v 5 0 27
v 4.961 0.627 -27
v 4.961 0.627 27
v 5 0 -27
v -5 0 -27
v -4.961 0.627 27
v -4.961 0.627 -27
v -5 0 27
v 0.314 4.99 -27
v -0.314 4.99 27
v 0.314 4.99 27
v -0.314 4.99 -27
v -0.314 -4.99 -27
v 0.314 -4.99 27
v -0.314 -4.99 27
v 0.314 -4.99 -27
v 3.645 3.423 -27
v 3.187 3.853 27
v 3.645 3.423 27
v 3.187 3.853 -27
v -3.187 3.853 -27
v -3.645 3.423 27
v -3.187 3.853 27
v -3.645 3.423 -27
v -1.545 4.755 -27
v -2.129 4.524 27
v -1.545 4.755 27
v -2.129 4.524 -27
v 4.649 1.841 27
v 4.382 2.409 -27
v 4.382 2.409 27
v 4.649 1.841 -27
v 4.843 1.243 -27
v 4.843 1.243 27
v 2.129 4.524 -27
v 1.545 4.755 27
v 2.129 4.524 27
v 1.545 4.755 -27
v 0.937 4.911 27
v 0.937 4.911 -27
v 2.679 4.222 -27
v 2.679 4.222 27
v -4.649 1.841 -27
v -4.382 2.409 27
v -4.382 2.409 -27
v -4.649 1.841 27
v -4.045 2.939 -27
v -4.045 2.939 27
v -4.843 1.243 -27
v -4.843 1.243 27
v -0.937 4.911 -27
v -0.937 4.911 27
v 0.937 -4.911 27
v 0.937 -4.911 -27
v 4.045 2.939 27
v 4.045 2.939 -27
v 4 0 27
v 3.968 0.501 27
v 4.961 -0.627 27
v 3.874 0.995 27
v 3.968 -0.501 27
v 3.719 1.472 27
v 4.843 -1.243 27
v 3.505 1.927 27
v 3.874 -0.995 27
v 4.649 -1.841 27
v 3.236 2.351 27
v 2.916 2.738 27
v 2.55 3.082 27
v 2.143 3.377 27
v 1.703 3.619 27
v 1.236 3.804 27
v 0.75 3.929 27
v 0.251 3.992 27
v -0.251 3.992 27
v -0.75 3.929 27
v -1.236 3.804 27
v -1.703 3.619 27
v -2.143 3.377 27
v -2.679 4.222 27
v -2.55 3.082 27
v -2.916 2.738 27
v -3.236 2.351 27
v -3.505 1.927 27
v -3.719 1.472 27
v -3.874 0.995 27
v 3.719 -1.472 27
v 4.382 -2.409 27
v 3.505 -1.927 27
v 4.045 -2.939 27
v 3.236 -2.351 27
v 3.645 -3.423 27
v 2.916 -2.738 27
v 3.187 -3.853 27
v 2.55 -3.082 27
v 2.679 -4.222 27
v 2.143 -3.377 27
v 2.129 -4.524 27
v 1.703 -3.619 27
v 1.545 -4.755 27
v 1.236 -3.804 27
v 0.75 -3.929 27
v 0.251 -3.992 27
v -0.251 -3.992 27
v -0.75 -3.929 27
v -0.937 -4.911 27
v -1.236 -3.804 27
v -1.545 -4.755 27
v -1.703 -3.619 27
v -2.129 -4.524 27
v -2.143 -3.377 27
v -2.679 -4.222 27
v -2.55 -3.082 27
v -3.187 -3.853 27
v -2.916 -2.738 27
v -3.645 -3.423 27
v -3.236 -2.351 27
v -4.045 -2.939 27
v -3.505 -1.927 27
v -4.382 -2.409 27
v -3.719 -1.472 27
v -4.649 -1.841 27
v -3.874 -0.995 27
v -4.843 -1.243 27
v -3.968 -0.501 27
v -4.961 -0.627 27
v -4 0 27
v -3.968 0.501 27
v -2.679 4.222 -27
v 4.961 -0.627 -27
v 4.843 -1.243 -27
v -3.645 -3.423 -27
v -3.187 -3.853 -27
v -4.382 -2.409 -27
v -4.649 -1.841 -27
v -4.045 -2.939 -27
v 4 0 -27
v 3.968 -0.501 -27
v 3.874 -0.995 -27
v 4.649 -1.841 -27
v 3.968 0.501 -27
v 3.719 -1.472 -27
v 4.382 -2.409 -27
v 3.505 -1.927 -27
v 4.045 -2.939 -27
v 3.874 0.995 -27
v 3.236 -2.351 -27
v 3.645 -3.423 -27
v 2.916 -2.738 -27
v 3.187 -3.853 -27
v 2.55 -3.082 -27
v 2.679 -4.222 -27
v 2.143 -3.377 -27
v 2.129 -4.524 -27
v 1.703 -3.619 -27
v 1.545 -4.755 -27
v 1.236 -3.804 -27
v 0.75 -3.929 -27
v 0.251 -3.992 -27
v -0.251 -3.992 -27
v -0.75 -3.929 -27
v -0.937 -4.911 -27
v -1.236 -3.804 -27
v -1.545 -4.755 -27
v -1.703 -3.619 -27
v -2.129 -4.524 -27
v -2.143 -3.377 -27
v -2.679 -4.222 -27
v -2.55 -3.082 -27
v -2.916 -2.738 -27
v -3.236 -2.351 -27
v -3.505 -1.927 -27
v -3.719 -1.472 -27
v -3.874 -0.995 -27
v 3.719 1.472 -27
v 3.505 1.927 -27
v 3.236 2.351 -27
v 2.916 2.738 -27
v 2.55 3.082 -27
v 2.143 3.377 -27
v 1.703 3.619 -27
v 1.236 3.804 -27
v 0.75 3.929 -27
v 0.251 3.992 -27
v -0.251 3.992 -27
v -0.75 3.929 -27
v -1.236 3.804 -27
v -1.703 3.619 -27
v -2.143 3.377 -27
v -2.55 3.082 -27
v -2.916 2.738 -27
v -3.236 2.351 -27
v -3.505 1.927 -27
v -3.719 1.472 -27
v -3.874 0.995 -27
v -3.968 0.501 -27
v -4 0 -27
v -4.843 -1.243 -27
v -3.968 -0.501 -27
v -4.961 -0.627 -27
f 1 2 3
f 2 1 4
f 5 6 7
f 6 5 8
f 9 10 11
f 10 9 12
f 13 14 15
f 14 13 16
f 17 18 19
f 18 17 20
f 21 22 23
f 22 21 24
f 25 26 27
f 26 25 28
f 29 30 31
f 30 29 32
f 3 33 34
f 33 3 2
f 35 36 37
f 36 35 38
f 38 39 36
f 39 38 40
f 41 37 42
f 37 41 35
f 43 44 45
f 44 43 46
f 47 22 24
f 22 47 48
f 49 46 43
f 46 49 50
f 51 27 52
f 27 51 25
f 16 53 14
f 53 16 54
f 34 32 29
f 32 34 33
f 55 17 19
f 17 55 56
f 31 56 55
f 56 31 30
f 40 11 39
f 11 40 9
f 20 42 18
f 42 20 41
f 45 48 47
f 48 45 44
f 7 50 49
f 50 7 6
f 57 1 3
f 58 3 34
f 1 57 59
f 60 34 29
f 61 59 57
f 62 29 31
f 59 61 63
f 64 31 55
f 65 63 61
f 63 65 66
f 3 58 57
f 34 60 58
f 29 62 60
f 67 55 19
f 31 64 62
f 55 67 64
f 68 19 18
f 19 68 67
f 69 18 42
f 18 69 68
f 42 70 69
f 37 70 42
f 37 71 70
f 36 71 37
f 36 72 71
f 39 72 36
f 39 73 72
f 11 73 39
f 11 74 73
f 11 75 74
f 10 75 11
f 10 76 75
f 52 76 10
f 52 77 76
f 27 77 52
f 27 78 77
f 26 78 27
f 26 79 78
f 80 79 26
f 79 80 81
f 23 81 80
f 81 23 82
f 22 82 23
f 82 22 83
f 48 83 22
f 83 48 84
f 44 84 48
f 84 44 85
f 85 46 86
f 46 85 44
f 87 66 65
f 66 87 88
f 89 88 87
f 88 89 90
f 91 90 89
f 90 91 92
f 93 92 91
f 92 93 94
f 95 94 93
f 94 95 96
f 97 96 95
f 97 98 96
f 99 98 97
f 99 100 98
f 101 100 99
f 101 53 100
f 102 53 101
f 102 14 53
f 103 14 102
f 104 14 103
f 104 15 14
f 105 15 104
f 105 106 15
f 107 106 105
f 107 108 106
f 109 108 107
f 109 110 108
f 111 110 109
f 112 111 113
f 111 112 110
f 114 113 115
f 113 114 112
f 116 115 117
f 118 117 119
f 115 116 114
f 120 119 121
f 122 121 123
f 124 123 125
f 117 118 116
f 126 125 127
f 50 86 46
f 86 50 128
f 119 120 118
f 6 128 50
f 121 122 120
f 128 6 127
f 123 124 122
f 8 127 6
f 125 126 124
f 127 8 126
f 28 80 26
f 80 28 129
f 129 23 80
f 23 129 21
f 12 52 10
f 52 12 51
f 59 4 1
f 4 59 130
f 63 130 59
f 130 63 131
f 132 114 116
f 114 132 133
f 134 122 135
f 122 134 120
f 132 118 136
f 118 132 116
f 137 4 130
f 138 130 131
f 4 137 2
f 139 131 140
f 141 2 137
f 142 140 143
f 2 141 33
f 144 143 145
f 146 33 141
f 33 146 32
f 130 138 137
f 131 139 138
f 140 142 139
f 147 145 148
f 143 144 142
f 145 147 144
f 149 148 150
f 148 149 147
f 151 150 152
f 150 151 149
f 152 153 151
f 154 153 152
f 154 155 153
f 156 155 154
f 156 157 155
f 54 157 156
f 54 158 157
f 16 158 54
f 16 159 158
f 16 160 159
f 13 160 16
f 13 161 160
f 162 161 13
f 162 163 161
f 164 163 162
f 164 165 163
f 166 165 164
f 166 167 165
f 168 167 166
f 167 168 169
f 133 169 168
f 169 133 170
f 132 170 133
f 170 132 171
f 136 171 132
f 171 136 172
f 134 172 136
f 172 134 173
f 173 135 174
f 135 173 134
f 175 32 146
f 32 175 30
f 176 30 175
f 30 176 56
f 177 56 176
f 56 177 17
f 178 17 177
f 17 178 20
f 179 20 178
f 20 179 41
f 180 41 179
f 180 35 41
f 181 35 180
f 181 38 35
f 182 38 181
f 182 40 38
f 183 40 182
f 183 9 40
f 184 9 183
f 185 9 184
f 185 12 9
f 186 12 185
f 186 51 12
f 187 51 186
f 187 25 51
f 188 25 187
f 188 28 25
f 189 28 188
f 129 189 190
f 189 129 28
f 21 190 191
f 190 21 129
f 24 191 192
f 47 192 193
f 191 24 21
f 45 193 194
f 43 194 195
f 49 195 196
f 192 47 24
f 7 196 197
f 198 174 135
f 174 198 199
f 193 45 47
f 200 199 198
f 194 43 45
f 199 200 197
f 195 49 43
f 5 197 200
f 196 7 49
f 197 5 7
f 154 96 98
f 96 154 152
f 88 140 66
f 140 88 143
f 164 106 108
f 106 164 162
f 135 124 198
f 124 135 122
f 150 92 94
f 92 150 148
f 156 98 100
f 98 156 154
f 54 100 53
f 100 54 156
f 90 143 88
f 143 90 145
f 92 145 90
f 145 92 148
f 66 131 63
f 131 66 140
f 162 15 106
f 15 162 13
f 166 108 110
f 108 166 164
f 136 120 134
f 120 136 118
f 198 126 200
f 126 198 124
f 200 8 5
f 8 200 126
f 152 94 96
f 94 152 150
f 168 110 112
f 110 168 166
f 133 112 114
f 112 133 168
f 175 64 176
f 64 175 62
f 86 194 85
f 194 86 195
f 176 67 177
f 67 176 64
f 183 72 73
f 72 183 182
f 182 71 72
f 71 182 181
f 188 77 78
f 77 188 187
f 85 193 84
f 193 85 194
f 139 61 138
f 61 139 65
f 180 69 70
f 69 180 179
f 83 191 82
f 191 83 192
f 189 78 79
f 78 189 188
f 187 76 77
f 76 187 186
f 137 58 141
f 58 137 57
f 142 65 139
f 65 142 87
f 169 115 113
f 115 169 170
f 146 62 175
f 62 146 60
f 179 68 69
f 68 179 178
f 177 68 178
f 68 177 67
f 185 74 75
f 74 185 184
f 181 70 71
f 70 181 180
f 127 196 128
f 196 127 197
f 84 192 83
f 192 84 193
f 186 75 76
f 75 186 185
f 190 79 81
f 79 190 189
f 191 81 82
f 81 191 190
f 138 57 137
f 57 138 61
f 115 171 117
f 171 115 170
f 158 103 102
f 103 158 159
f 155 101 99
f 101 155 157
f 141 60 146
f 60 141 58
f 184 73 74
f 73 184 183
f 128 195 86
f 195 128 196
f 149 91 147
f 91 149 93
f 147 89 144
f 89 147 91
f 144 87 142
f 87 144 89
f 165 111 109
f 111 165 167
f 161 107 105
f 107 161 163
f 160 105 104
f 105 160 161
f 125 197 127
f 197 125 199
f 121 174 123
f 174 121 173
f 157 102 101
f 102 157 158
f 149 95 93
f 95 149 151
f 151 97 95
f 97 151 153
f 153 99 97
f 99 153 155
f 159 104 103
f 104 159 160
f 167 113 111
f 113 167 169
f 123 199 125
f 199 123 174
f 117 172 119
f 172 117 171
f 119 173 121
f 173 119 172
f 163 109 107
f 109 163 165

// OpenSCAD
$fn = 50;


difference() {
	union() {
		translate(v = [0, 0, -27.0000000000]) {
			cylinder(h = 54, r = 5.0000000000);
		}
	}
	union() {
		translate(v = [0, 0, -100.0000000000]) {
			cylinder(h = 200, r = 4);
		}
	}
}
